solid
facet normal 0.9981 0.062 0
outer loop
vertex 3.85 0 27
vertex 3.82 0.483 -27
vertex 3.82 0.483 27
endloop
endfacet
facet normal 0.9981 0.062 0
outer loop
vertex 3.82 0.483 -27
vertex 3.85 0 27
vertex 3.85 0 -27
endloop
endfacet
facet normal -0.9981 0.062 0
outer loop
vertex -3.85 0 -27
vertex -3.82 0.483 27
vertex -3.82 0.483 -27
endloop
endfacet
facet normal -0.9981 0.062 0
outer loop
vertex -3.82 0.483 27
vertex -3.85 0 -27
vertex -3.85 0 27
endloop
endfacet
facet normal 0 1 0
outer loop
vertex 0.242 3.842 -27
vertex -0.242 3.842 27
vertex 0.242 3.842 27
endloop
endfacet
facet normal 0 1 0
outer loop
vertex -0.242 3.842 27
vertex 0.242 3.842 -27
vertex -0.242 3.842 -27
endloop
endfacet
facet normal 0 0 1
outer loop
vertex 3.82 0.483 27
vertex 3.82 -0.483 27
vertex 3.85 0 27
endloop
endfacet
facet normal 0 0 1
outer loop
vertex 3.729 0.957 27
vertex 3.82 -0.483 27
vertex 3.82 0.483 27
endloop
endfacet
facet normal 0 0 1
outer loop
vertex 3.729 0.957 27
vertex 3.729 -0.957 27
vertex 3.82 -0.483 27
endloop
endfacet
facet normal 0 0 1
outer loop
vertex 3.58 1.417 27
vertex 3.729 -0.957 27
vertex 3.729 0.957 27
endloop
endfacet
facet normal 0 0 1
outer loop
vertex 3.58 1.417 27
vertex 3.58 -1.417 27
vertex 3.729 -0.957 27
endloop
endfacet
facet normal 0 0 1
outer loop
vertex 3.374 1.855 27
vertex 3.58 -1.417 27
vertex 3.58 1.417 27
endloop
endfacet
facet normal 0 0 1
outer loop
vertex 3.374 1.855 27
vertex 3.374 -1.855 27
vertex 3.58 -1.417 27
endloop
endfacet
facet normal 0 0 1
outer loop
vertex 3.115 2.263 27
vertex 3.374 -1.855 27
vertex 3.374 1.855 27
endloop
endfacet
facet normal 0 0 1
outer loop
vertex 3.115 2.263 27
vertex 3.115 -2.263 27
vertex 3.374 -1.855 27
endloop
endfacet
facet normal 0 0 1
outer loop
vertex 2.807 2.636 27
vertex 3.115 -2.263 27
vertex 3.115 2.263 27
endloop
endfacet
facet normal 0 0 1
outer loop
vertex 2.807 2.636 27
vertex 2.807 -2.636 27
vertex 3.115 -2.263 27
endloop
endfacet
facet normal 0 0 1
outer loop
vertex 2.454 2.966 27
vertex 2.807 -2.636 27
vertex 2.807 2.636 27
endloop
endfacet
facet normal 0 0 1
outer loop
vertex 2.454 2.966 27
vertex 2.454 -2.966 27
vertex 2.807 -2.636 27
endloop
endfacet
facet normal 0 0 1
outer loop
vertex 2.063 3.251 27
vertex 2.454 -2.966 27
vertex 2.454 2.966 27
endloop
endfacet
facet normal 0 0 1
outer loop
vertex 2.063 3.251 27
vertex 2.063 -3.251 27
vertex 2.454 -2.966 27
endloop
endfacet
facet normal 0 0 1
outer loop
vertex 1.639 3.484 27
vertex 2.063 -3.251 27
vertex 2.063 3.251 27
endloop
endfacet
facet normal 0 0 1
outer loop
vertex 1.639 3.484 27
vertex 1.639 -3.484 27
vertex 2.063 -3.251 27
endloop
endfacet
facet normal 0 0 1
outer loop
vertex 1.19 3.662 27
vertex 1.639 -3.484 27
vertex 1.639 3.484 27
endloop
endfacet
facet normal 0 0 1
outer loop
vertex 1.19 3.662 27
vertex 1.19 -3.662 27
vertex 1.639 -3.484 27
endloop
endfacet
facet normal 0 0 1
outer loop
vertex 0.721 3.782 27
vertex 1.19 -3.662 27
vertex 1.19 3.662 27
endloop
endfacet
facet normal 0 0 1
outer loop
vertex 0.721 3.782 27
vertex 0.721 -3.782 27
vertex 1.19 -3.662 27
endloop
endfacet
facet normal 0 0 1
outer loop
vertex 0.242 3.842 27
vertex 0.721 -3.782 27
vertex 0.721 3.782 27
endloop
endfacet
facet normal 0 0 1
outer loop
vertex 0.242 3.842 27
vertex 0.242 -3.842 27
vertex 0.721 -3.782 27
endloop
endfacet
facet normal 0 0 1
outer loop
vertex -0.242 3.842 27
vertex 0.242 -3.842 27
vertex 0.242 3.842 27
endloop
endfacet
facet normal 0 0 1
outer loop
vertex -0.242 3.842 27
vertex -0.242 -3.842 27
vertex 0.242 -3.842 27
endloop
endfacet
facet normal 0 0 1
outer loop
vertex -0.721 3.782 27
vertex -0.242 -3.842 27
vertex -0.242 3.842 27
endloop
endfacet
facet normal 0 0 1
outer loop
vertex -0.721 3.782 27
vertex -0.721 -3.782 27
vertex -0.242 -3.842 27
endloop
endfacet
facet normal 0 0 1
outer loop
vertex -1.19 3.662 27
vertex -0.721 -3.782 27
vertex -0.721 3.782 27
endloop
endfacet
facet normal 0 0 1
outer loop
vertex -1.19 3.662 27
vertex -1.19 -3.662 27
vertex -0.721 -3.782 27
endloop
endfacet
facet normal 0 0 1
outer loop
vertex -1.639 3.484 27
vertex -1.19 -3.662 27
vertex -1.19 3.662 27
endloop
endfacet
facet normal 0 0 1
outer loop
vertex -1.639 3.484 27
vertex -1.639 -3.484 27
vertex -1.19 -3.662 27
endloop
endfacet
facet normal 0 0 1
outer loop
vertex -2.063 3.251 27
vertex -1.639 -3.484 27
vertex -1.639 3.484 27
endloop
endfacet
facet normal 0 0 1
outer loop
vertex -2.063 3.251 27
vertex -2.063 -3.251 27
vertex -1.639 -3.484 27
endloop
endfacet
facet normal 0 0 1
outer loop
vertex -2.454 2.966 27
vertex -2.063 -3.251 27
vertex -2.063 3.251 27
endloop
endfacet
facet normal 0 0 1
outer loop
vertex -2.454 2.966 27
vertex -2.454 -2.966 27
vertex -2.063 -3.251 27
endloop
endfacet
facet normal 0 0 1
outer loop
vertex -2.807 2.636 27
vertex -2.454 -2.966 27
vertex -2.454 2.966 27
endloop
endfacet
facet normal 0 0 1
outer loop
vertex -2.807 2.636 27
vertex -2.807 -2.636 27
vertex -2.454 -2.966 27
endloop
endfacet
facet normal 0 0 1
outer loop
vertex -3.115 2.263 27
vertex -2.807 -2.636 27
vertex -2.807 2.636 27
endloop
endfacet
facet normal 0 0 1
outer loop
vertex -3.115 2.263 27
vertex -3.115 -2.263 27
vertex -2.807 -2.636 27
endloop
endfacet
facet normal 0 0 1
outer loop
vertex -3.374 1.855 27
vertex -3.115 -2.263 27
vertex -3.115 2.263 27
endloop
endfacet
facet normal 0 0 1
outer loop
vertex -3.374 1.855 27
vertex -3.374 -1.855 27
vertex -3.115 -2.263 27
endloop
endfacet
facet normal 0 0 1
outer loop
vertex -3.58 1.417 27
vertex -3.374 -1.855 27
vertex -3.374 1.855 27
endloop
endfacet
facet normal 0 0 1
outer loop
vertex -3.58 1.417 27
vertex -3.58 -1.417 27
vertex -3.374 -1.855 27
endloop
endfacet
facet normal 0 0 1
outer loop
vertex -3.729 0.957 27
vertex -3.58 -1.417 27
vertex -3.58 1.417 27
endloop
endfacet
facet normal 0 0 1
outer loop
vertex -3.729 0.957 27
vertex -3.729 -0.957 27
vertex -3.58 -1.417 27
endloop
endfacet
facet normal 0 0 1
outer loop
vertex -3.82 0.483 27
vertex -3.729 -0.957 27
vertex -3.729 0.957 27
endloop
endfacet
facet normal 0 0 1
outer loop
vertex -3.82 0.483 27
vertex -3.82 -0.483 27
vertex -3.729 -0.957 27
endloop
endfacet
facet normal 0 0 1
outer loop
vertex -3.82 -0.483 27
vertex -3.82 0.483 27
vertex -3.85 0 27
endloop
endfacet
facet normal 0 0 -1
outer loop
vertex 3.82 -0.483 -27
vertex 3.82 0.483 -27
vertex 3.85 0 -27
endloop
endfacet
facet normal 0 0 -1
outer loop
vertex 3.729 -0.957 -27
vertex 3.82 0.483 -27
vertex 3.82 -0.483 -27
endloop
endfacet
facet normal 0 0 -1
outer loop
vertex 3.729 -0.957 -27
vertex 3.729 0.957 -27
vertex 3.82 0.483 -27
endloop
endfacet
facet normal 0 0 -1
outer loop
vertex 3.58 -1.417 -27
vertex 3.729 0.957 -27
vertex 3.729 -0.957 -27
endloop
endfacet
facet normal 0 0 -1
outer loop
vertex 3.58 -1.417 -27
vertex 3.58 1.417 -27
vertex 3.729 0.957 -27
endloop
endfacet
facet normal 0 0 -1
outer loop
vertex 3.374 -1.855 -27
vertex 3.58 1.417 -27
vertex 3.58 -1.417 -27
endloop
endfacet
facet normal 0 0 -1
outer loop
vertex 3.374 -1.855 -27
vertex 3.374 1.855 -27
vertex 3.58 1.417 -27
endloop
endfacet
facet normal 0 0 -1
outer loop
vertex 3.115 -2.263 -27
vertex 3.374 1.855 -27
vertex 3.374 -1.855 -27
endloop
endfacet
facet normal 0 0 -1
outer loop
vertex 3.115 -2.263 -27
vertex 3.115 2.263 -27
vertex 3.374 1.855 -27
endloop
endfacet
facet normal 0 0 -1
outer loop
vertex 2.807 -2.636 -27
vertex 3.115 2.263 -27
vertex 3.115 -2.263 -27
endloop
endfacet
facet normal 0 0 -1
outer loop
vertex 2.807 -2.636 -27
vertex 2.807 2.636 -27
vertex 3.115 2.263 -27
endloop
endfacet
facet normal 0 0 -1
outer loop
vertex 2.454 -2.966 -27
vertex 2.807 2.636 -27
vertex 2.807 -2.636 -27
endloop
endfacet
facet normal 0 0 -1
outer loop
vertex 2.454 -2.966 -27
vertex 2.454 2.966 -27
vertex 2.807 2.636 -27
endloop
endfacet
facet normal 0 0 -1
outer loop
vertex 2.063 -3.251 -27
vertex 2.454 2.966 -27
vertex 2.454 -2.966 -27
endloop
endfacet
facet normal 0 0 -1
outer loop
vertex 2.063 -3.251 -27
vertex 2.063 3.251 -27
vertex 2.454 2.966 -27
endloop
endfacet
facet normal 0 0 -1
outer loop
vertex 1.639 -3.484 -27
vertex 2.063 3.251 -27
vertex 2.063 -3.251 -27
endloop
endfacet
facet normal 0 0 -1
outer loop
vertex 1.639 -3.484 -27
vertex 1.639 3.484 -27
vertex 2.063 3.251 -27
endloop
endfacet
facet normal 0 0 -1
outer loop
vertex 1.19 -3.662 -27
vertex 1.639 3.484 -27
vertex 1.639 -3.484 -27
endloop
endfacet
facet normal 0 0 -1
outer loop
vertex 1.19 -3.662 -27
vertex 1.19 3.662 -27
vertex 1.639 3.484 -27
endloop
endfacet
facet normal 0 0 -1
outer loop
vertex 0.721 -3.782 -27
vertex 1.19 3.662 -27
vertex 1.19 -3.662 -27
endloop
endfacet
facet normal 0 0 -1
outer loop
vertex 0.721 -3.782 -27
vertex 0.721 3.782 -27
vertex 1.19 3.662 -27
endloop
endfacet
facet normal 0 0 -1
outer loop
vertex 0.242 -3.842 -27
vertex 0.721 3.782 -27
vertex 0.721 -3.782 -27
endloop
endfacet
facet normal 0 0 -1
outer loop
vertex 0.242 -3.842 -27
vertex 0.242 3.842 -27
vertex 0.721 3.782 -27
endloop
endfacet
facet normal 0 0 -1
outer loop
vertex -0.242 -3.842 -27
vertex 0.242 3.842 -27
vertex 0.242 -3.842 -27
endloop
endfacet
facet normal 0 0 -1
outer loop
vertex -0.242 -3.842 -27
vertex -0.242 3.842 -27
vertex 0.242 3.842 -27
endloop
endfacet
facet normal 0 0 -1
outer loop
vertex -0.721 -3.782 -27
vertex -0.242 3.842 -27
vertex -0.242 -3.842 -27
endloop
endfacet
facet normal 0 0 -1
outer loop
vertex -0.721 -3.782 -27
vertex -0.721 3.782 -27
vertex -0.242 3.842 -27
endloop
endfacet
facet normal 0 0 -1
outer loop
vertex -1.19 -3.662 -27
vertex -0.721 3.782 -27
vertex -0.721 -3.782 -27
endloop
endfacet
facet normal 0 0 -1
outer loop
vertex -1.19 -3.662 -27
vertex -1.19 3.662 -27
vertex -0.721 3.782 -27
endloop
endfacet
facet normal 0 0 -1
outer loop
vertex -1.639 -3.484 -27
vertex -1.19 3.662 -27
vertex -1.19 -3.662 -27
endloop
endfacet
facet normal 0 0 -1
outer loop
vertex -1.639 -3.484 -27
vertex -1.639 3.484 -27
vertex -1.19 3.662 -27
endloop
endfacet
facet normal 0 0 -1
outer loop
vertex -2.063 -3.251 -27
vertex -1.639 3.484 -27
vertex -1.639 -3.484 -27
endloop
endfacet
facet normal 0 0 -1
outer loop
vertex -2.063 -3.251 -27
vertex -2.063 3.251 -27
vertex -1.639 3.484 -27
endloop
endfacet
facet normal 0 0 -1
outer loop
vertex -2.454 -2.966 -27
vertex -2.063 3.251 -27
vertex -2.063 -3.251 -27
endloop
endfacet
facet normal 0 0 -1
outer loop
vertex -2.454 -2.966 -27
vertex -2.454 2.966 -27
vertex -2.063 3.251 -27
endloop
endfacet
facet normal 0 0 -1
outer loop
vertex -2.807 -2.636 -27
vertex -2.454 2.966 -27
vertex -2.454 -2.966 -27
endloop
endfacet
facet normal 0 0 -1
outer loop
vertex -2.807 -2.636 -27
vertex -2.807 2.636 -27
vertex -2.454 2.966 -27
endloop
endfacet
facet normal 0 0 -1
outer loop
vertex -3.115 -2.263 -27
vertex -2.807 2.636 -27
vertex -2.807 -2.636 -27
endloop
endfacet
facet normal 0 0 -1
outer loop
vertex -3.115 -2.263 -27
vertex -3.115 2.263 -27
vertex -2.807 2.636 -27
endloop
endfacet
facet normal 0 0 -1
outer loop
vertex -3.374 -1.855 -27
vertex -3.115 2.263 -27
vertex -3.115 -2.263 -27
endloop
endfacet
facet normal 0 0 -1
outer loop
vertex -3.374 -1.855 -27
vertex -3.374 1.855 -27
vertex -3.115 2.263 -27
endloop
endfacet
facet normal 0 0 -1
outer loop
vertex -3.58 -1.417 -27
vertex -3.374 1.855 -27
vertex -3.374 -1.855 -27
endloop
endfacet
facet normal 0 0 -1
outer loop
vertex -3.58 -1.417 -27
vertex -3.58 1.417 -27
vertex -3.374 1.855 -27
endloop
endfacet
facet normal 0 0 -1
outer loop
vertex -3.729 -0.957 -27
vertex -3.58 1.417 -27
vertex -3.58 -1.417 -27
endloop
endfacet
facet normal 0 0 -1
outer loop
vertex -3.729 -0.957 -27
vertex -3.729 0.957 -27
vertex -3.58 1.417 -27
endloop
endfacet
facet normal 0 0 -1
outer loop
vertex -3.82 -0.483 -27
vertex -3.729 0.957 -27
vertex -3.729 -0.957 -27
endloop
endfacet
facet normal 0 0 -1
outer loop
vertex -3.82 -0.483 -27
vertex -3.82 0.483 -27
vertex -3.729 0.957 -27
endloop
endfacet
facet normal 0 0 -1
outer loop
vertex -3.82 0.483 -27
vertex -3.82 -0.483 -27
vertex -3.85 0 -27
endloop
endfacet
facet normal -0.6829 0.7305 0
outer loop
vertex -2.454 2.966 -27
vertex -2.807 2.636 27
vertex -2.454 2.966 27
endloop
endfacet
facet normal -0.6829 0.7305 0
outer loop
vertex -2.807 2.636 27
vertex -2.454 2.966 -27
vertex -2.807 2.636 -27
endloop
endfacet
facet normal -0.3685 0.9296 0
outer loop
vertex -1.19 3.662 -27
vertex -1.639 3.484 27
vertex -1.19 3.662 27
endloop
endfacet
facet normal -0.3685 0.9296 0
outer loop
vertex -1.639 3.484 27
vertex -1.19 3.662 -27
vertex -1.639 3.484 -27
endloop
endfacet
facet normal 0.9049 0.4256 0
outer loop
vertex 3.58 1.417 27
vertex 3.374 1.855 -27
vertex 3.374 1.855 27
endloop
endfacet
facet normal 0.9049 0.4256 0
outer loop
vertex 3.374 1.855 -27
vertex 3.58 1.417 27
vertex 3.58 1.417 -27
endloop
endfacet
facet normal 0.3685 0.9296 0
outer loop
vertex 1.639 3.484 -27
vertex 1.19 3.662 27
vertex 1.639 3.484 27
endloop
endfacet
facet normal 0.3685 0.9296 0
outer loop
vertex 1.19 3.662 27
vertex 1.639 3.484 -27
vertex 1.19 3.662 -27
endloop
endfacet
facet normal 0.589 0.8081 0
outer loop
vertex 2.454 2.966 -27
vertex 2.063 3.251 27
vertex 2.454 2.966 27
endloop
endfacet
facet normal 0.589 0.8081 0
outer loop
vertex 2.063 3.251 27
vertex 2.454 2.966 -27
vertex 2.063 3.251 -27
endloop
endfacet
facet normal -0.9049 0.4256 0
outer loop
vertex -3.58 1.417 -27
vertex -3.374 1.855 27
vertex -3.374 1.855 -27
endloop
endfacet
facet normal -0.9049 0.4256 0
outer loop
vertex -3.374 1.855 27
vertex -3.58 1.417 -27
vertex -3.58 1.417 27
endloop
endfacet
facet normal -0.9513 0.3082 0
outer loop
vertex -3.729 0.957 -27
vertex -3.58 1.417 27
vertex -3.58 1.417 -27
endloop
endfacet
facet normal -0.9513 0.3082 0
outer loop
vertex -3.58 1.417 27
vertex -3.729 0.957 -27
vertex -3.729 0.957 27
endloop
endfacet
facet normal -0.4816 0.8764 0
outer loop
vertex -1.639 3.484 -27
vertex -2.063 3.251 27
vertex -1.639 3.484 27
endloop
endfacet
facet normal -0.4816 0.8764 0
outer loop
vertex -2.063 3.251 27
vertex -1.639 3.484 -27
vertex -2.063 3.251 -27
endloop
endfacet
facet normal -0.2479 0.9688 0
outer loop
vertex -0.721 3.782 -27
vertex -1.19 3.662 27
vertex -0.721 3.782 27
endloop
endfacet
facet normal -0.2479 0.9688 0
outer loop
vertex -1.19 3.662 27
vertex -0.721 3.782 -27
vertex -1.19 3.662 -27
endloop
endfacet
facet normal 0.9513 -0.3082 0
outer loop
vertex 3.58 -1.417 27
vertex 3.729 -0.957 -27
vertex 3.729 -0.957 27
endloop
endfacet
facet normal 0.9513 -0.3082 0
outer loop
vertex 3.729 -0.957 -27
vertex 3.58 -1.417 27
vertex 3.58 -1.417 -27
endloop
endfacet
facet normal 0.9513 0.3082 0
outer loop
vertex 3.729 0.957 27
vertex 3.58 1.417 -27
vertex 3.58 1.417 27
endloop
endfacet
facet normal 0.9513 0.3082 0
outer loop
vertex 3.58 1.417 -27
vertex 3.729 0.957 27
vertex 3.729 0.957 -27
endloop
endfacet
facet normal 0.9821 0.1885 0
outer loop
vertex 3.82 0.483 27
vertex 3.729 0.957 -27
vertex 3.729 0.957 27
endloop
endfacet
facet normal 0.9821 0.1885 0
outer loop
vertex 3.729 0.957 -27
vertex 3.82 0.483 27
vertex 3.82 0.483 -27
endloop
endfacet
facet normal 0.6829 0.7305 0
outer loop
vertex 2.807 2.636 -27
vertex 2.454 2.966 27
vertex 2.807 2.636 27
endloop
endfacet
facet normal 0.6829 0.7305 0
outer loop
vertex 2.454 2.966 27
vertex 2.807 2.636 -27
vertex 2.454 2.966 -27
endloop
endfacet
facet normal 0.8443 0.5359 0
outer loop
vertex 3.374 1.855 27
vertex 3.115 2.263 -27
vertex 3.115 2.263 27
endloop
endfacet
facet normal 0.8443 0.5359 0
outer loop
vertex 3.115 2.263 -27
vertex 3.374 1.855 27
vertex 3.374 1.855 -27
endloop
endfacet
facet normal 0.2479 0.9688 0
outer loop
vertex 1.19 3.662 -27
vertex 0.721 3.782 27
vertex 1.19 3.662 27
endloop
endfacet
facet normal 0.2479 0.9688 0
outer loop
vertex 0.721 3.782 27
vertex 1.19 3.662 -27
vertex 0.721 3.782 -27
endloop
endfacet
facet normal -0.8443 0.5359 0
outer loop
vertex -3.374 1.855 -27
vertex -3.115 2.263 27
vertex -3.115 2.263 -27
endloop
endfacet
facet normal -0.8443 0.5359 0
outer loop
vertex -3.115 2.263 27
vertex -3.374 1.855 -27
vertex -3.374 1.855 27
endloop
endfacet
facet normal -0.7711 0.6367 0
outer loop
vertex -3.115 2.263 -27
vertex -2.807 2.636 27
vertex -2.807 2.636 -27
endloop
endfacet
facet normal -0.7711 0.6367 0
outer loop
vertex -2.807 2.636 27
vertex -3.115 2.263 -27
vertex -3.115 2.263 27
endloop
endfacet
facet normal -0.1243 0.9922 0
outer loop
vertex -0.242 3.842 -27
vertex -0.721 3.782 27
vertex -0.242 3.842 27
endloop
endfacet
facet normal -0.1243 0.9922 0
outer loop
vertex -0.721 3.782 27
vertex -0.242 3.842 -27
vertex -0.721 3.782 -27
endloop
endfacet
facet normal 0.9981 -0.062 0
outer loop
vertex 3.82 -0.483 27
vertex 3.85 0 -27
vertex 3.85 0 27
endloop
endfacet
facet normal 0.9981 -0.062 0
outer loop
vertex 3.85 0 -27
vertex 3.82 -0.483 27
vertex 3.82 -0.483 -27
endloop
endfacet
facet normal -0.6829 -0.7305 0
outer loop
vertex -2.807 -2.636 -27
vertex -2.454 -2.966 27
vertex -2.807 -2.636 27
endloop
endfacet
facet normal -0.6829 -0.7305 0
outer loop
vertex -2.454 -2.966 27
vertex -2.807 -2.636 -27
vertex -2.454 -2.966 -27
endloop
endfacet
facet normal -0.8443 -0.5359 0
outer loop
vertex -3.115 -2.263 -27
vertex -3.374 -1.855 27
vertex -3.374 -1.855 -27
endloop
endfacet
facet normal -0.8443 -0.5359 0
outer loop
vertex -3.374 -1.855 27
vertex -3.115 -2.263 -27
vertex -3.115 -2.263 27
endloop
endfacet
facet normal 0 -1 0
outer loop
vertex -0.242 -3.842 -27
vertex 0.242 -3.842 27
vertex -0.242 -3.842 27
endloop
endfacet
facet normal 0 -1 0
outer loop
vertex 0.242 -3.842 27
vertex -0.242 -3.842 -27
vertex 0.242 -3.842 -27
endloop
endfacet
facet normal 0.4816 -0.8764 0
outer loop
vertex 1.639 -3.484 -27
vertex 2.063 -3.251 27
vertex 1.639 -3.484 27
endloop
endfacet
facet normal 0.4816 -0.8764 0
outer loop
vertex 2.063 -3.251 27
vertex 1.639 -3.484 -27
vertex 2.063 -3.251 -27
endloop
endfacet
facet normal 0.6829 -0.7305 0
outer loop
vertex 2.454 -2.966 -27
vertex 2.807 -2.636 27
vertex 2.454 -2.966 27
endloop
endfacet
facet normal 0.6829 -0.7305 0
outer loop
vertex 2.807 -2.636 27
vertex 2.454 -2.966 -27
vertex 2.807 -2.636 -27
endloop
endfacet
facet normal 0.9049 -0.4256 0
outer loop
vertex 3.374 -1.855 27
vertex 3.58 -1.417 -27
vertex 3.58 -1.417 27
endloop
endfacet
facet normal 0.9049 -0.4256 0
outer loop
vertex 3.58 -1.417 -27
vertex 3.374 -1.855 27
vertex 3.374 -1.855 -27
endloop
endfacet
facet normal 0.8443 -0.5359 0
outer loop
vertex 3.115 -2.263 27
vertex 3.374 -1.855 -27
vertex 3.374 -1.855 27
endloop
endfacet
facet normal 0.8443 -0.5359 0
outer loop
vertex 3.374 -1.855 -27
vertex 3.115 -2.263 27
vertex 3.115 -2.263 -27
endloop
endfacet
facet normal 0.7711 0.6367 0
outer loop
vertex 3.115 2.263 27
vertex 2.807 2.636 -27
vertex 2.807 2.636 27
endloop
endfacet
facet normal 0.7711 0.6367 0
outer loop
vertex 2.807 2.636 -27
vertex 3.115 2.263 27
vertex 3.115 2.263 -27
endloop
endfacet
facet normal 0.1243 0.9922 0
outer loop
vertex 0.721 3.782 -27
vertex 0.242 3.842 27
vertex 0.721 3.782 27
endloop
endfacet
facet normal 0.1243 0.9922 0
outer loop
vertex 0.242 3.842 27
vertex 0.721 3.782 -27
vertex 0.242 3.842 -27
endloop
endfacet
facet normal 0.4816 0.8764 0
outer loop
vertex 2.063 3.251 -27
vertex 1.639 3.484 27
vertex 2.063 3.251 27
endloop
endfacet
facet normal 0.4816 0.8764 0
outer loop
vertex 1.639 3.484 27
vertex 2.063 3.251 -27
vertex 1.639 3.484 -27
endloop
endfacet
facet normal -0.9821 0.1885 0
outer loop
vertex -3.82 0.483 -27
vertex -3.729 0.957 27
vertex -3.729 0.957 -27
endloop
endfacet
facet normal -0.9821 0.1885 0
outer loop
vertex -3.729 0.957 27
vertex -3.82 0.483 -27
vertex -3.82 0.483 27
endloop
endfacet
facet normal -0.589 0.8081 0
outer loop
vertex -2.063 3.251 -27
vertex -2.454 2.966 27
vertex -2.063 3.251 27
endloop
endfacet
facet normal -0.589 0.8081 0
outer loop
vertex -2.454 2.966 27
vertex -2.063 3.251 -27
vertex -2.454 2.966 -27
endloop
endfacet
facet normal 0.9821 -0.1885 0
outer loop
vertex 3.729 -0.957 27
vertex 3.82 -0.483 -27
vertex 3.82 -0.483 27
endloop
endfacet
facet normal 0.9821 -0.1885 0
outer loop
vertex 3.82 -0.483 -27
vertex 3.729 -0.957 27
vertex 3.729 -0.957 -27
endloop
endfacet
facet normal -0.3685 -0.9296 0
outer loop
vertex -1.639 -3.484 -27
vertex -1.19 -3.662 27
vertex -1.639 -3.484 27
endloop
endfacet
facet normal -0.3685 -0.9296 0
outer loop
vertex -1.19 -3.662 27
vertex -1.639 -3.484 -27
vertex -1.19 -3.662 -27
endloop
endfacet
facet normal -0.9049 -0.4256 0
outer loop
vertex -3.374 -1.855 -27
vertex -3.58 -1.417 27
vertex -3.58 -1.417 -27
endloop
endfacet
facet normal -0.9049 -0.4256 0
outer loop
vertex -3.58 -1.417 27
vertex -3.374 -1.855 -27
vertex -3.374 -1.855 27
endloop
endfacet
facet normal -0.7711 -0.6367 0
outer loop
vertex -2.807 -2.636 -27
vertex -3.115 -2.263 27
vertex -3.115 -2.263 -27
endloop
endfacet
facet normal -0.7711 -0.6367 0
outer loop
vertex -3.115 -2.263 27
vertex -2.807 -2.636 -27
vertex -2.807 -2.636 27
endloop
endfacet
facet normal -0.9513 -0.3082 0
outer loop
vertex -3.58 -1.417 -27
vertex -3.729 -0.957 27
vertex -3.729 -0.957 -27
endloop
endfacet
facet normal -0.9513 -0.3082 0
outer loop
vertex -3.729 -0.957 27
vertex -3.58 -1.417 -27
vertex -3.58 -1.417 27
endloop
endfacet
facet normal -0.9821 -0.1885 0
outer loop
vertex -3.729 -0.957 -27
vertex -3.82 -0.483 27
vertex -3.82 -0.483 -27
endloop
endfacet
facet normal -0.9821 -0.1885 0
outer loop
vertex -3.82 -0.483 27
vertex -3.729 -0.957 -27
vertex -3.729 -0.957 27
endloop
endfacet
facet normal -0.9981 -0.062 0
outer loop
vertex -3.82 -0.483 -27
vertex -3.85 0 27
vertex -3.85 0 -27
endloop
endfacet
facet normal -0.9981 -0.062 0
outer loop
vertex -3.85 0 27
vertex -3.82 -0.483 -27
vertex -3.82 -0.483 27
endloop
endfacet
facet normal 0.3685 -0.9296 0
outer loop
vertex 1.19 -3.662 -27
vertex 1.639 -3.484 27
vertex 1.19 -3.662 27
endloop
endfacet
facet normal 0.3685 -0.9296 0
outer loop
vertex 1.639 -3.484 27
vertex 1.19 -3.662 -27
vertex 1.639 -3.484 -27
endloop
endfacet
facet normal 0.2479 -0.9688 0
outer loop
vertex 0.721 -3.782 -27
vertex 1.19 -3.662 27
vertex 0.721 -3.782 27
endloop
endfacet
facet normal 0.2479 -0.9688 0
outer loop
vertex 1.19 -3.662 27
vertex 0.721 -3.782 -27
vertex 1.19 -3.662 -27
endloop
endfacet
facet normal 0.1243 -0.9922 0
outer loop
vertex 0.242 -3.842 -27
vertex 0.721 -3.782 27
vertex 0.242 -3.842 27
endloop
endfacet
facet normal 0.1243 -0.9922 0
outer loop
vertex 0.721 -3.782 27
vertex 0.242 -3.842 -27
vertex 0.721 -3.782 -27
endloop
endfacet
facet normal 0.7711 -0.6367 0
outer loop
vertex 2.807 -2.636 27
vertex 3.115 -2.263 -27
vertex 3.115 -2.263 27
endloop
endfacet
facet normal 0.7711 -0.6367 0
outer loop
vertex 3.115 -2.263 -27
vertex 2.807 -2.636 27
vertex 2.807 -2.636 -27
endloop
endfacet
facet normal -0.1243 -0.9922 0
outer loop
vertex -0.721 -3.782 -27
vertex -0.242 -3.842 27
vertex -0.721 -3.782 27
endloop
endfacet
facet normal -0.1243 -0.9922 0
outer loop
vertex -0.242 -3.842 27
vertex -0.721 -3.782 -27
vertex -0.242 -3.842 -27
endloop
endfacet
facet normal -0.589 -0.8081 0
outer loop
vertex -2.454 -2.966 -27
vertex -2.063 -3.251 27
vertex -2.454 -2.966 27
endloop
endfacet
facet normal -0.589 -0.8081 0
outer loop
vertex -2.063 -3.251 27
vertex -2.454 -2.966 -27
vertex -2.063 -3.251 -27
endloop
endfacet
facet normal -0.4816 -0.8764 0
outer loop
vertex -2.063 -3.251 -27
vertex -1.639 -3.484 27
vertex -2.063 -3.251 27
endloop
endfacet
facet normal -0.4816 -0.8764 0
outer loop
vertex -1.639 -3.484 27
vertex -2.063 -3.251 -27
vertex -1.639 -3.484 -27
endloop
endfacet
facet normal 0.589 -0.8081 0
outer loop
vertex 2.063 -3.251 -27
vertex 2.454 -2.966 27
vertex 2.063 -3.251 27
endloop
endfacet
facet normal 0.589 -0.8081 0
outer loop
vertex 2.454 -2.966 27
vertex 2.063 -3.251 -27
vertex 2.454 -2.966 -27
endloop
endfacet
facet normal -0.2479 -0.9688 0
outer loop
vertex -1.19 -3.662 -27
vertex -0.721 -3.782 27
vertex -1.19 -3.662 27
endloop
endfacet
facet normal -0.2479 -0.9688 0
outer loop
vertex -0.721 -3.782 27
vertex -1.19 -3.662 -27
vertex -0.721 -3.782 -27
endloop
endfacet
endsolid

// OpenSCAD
$fn = 50;


difference() {
	union() {
		translate(v = [0, 0, -27.0000000000]) {
			cylinder(h = 54, r = 3.8500000000);
		}
	}
	union() {
		translate(v = [0, 0, -100.0000000000]) {
			cylinder(h = 200, r = 0);
		}
	}
}
